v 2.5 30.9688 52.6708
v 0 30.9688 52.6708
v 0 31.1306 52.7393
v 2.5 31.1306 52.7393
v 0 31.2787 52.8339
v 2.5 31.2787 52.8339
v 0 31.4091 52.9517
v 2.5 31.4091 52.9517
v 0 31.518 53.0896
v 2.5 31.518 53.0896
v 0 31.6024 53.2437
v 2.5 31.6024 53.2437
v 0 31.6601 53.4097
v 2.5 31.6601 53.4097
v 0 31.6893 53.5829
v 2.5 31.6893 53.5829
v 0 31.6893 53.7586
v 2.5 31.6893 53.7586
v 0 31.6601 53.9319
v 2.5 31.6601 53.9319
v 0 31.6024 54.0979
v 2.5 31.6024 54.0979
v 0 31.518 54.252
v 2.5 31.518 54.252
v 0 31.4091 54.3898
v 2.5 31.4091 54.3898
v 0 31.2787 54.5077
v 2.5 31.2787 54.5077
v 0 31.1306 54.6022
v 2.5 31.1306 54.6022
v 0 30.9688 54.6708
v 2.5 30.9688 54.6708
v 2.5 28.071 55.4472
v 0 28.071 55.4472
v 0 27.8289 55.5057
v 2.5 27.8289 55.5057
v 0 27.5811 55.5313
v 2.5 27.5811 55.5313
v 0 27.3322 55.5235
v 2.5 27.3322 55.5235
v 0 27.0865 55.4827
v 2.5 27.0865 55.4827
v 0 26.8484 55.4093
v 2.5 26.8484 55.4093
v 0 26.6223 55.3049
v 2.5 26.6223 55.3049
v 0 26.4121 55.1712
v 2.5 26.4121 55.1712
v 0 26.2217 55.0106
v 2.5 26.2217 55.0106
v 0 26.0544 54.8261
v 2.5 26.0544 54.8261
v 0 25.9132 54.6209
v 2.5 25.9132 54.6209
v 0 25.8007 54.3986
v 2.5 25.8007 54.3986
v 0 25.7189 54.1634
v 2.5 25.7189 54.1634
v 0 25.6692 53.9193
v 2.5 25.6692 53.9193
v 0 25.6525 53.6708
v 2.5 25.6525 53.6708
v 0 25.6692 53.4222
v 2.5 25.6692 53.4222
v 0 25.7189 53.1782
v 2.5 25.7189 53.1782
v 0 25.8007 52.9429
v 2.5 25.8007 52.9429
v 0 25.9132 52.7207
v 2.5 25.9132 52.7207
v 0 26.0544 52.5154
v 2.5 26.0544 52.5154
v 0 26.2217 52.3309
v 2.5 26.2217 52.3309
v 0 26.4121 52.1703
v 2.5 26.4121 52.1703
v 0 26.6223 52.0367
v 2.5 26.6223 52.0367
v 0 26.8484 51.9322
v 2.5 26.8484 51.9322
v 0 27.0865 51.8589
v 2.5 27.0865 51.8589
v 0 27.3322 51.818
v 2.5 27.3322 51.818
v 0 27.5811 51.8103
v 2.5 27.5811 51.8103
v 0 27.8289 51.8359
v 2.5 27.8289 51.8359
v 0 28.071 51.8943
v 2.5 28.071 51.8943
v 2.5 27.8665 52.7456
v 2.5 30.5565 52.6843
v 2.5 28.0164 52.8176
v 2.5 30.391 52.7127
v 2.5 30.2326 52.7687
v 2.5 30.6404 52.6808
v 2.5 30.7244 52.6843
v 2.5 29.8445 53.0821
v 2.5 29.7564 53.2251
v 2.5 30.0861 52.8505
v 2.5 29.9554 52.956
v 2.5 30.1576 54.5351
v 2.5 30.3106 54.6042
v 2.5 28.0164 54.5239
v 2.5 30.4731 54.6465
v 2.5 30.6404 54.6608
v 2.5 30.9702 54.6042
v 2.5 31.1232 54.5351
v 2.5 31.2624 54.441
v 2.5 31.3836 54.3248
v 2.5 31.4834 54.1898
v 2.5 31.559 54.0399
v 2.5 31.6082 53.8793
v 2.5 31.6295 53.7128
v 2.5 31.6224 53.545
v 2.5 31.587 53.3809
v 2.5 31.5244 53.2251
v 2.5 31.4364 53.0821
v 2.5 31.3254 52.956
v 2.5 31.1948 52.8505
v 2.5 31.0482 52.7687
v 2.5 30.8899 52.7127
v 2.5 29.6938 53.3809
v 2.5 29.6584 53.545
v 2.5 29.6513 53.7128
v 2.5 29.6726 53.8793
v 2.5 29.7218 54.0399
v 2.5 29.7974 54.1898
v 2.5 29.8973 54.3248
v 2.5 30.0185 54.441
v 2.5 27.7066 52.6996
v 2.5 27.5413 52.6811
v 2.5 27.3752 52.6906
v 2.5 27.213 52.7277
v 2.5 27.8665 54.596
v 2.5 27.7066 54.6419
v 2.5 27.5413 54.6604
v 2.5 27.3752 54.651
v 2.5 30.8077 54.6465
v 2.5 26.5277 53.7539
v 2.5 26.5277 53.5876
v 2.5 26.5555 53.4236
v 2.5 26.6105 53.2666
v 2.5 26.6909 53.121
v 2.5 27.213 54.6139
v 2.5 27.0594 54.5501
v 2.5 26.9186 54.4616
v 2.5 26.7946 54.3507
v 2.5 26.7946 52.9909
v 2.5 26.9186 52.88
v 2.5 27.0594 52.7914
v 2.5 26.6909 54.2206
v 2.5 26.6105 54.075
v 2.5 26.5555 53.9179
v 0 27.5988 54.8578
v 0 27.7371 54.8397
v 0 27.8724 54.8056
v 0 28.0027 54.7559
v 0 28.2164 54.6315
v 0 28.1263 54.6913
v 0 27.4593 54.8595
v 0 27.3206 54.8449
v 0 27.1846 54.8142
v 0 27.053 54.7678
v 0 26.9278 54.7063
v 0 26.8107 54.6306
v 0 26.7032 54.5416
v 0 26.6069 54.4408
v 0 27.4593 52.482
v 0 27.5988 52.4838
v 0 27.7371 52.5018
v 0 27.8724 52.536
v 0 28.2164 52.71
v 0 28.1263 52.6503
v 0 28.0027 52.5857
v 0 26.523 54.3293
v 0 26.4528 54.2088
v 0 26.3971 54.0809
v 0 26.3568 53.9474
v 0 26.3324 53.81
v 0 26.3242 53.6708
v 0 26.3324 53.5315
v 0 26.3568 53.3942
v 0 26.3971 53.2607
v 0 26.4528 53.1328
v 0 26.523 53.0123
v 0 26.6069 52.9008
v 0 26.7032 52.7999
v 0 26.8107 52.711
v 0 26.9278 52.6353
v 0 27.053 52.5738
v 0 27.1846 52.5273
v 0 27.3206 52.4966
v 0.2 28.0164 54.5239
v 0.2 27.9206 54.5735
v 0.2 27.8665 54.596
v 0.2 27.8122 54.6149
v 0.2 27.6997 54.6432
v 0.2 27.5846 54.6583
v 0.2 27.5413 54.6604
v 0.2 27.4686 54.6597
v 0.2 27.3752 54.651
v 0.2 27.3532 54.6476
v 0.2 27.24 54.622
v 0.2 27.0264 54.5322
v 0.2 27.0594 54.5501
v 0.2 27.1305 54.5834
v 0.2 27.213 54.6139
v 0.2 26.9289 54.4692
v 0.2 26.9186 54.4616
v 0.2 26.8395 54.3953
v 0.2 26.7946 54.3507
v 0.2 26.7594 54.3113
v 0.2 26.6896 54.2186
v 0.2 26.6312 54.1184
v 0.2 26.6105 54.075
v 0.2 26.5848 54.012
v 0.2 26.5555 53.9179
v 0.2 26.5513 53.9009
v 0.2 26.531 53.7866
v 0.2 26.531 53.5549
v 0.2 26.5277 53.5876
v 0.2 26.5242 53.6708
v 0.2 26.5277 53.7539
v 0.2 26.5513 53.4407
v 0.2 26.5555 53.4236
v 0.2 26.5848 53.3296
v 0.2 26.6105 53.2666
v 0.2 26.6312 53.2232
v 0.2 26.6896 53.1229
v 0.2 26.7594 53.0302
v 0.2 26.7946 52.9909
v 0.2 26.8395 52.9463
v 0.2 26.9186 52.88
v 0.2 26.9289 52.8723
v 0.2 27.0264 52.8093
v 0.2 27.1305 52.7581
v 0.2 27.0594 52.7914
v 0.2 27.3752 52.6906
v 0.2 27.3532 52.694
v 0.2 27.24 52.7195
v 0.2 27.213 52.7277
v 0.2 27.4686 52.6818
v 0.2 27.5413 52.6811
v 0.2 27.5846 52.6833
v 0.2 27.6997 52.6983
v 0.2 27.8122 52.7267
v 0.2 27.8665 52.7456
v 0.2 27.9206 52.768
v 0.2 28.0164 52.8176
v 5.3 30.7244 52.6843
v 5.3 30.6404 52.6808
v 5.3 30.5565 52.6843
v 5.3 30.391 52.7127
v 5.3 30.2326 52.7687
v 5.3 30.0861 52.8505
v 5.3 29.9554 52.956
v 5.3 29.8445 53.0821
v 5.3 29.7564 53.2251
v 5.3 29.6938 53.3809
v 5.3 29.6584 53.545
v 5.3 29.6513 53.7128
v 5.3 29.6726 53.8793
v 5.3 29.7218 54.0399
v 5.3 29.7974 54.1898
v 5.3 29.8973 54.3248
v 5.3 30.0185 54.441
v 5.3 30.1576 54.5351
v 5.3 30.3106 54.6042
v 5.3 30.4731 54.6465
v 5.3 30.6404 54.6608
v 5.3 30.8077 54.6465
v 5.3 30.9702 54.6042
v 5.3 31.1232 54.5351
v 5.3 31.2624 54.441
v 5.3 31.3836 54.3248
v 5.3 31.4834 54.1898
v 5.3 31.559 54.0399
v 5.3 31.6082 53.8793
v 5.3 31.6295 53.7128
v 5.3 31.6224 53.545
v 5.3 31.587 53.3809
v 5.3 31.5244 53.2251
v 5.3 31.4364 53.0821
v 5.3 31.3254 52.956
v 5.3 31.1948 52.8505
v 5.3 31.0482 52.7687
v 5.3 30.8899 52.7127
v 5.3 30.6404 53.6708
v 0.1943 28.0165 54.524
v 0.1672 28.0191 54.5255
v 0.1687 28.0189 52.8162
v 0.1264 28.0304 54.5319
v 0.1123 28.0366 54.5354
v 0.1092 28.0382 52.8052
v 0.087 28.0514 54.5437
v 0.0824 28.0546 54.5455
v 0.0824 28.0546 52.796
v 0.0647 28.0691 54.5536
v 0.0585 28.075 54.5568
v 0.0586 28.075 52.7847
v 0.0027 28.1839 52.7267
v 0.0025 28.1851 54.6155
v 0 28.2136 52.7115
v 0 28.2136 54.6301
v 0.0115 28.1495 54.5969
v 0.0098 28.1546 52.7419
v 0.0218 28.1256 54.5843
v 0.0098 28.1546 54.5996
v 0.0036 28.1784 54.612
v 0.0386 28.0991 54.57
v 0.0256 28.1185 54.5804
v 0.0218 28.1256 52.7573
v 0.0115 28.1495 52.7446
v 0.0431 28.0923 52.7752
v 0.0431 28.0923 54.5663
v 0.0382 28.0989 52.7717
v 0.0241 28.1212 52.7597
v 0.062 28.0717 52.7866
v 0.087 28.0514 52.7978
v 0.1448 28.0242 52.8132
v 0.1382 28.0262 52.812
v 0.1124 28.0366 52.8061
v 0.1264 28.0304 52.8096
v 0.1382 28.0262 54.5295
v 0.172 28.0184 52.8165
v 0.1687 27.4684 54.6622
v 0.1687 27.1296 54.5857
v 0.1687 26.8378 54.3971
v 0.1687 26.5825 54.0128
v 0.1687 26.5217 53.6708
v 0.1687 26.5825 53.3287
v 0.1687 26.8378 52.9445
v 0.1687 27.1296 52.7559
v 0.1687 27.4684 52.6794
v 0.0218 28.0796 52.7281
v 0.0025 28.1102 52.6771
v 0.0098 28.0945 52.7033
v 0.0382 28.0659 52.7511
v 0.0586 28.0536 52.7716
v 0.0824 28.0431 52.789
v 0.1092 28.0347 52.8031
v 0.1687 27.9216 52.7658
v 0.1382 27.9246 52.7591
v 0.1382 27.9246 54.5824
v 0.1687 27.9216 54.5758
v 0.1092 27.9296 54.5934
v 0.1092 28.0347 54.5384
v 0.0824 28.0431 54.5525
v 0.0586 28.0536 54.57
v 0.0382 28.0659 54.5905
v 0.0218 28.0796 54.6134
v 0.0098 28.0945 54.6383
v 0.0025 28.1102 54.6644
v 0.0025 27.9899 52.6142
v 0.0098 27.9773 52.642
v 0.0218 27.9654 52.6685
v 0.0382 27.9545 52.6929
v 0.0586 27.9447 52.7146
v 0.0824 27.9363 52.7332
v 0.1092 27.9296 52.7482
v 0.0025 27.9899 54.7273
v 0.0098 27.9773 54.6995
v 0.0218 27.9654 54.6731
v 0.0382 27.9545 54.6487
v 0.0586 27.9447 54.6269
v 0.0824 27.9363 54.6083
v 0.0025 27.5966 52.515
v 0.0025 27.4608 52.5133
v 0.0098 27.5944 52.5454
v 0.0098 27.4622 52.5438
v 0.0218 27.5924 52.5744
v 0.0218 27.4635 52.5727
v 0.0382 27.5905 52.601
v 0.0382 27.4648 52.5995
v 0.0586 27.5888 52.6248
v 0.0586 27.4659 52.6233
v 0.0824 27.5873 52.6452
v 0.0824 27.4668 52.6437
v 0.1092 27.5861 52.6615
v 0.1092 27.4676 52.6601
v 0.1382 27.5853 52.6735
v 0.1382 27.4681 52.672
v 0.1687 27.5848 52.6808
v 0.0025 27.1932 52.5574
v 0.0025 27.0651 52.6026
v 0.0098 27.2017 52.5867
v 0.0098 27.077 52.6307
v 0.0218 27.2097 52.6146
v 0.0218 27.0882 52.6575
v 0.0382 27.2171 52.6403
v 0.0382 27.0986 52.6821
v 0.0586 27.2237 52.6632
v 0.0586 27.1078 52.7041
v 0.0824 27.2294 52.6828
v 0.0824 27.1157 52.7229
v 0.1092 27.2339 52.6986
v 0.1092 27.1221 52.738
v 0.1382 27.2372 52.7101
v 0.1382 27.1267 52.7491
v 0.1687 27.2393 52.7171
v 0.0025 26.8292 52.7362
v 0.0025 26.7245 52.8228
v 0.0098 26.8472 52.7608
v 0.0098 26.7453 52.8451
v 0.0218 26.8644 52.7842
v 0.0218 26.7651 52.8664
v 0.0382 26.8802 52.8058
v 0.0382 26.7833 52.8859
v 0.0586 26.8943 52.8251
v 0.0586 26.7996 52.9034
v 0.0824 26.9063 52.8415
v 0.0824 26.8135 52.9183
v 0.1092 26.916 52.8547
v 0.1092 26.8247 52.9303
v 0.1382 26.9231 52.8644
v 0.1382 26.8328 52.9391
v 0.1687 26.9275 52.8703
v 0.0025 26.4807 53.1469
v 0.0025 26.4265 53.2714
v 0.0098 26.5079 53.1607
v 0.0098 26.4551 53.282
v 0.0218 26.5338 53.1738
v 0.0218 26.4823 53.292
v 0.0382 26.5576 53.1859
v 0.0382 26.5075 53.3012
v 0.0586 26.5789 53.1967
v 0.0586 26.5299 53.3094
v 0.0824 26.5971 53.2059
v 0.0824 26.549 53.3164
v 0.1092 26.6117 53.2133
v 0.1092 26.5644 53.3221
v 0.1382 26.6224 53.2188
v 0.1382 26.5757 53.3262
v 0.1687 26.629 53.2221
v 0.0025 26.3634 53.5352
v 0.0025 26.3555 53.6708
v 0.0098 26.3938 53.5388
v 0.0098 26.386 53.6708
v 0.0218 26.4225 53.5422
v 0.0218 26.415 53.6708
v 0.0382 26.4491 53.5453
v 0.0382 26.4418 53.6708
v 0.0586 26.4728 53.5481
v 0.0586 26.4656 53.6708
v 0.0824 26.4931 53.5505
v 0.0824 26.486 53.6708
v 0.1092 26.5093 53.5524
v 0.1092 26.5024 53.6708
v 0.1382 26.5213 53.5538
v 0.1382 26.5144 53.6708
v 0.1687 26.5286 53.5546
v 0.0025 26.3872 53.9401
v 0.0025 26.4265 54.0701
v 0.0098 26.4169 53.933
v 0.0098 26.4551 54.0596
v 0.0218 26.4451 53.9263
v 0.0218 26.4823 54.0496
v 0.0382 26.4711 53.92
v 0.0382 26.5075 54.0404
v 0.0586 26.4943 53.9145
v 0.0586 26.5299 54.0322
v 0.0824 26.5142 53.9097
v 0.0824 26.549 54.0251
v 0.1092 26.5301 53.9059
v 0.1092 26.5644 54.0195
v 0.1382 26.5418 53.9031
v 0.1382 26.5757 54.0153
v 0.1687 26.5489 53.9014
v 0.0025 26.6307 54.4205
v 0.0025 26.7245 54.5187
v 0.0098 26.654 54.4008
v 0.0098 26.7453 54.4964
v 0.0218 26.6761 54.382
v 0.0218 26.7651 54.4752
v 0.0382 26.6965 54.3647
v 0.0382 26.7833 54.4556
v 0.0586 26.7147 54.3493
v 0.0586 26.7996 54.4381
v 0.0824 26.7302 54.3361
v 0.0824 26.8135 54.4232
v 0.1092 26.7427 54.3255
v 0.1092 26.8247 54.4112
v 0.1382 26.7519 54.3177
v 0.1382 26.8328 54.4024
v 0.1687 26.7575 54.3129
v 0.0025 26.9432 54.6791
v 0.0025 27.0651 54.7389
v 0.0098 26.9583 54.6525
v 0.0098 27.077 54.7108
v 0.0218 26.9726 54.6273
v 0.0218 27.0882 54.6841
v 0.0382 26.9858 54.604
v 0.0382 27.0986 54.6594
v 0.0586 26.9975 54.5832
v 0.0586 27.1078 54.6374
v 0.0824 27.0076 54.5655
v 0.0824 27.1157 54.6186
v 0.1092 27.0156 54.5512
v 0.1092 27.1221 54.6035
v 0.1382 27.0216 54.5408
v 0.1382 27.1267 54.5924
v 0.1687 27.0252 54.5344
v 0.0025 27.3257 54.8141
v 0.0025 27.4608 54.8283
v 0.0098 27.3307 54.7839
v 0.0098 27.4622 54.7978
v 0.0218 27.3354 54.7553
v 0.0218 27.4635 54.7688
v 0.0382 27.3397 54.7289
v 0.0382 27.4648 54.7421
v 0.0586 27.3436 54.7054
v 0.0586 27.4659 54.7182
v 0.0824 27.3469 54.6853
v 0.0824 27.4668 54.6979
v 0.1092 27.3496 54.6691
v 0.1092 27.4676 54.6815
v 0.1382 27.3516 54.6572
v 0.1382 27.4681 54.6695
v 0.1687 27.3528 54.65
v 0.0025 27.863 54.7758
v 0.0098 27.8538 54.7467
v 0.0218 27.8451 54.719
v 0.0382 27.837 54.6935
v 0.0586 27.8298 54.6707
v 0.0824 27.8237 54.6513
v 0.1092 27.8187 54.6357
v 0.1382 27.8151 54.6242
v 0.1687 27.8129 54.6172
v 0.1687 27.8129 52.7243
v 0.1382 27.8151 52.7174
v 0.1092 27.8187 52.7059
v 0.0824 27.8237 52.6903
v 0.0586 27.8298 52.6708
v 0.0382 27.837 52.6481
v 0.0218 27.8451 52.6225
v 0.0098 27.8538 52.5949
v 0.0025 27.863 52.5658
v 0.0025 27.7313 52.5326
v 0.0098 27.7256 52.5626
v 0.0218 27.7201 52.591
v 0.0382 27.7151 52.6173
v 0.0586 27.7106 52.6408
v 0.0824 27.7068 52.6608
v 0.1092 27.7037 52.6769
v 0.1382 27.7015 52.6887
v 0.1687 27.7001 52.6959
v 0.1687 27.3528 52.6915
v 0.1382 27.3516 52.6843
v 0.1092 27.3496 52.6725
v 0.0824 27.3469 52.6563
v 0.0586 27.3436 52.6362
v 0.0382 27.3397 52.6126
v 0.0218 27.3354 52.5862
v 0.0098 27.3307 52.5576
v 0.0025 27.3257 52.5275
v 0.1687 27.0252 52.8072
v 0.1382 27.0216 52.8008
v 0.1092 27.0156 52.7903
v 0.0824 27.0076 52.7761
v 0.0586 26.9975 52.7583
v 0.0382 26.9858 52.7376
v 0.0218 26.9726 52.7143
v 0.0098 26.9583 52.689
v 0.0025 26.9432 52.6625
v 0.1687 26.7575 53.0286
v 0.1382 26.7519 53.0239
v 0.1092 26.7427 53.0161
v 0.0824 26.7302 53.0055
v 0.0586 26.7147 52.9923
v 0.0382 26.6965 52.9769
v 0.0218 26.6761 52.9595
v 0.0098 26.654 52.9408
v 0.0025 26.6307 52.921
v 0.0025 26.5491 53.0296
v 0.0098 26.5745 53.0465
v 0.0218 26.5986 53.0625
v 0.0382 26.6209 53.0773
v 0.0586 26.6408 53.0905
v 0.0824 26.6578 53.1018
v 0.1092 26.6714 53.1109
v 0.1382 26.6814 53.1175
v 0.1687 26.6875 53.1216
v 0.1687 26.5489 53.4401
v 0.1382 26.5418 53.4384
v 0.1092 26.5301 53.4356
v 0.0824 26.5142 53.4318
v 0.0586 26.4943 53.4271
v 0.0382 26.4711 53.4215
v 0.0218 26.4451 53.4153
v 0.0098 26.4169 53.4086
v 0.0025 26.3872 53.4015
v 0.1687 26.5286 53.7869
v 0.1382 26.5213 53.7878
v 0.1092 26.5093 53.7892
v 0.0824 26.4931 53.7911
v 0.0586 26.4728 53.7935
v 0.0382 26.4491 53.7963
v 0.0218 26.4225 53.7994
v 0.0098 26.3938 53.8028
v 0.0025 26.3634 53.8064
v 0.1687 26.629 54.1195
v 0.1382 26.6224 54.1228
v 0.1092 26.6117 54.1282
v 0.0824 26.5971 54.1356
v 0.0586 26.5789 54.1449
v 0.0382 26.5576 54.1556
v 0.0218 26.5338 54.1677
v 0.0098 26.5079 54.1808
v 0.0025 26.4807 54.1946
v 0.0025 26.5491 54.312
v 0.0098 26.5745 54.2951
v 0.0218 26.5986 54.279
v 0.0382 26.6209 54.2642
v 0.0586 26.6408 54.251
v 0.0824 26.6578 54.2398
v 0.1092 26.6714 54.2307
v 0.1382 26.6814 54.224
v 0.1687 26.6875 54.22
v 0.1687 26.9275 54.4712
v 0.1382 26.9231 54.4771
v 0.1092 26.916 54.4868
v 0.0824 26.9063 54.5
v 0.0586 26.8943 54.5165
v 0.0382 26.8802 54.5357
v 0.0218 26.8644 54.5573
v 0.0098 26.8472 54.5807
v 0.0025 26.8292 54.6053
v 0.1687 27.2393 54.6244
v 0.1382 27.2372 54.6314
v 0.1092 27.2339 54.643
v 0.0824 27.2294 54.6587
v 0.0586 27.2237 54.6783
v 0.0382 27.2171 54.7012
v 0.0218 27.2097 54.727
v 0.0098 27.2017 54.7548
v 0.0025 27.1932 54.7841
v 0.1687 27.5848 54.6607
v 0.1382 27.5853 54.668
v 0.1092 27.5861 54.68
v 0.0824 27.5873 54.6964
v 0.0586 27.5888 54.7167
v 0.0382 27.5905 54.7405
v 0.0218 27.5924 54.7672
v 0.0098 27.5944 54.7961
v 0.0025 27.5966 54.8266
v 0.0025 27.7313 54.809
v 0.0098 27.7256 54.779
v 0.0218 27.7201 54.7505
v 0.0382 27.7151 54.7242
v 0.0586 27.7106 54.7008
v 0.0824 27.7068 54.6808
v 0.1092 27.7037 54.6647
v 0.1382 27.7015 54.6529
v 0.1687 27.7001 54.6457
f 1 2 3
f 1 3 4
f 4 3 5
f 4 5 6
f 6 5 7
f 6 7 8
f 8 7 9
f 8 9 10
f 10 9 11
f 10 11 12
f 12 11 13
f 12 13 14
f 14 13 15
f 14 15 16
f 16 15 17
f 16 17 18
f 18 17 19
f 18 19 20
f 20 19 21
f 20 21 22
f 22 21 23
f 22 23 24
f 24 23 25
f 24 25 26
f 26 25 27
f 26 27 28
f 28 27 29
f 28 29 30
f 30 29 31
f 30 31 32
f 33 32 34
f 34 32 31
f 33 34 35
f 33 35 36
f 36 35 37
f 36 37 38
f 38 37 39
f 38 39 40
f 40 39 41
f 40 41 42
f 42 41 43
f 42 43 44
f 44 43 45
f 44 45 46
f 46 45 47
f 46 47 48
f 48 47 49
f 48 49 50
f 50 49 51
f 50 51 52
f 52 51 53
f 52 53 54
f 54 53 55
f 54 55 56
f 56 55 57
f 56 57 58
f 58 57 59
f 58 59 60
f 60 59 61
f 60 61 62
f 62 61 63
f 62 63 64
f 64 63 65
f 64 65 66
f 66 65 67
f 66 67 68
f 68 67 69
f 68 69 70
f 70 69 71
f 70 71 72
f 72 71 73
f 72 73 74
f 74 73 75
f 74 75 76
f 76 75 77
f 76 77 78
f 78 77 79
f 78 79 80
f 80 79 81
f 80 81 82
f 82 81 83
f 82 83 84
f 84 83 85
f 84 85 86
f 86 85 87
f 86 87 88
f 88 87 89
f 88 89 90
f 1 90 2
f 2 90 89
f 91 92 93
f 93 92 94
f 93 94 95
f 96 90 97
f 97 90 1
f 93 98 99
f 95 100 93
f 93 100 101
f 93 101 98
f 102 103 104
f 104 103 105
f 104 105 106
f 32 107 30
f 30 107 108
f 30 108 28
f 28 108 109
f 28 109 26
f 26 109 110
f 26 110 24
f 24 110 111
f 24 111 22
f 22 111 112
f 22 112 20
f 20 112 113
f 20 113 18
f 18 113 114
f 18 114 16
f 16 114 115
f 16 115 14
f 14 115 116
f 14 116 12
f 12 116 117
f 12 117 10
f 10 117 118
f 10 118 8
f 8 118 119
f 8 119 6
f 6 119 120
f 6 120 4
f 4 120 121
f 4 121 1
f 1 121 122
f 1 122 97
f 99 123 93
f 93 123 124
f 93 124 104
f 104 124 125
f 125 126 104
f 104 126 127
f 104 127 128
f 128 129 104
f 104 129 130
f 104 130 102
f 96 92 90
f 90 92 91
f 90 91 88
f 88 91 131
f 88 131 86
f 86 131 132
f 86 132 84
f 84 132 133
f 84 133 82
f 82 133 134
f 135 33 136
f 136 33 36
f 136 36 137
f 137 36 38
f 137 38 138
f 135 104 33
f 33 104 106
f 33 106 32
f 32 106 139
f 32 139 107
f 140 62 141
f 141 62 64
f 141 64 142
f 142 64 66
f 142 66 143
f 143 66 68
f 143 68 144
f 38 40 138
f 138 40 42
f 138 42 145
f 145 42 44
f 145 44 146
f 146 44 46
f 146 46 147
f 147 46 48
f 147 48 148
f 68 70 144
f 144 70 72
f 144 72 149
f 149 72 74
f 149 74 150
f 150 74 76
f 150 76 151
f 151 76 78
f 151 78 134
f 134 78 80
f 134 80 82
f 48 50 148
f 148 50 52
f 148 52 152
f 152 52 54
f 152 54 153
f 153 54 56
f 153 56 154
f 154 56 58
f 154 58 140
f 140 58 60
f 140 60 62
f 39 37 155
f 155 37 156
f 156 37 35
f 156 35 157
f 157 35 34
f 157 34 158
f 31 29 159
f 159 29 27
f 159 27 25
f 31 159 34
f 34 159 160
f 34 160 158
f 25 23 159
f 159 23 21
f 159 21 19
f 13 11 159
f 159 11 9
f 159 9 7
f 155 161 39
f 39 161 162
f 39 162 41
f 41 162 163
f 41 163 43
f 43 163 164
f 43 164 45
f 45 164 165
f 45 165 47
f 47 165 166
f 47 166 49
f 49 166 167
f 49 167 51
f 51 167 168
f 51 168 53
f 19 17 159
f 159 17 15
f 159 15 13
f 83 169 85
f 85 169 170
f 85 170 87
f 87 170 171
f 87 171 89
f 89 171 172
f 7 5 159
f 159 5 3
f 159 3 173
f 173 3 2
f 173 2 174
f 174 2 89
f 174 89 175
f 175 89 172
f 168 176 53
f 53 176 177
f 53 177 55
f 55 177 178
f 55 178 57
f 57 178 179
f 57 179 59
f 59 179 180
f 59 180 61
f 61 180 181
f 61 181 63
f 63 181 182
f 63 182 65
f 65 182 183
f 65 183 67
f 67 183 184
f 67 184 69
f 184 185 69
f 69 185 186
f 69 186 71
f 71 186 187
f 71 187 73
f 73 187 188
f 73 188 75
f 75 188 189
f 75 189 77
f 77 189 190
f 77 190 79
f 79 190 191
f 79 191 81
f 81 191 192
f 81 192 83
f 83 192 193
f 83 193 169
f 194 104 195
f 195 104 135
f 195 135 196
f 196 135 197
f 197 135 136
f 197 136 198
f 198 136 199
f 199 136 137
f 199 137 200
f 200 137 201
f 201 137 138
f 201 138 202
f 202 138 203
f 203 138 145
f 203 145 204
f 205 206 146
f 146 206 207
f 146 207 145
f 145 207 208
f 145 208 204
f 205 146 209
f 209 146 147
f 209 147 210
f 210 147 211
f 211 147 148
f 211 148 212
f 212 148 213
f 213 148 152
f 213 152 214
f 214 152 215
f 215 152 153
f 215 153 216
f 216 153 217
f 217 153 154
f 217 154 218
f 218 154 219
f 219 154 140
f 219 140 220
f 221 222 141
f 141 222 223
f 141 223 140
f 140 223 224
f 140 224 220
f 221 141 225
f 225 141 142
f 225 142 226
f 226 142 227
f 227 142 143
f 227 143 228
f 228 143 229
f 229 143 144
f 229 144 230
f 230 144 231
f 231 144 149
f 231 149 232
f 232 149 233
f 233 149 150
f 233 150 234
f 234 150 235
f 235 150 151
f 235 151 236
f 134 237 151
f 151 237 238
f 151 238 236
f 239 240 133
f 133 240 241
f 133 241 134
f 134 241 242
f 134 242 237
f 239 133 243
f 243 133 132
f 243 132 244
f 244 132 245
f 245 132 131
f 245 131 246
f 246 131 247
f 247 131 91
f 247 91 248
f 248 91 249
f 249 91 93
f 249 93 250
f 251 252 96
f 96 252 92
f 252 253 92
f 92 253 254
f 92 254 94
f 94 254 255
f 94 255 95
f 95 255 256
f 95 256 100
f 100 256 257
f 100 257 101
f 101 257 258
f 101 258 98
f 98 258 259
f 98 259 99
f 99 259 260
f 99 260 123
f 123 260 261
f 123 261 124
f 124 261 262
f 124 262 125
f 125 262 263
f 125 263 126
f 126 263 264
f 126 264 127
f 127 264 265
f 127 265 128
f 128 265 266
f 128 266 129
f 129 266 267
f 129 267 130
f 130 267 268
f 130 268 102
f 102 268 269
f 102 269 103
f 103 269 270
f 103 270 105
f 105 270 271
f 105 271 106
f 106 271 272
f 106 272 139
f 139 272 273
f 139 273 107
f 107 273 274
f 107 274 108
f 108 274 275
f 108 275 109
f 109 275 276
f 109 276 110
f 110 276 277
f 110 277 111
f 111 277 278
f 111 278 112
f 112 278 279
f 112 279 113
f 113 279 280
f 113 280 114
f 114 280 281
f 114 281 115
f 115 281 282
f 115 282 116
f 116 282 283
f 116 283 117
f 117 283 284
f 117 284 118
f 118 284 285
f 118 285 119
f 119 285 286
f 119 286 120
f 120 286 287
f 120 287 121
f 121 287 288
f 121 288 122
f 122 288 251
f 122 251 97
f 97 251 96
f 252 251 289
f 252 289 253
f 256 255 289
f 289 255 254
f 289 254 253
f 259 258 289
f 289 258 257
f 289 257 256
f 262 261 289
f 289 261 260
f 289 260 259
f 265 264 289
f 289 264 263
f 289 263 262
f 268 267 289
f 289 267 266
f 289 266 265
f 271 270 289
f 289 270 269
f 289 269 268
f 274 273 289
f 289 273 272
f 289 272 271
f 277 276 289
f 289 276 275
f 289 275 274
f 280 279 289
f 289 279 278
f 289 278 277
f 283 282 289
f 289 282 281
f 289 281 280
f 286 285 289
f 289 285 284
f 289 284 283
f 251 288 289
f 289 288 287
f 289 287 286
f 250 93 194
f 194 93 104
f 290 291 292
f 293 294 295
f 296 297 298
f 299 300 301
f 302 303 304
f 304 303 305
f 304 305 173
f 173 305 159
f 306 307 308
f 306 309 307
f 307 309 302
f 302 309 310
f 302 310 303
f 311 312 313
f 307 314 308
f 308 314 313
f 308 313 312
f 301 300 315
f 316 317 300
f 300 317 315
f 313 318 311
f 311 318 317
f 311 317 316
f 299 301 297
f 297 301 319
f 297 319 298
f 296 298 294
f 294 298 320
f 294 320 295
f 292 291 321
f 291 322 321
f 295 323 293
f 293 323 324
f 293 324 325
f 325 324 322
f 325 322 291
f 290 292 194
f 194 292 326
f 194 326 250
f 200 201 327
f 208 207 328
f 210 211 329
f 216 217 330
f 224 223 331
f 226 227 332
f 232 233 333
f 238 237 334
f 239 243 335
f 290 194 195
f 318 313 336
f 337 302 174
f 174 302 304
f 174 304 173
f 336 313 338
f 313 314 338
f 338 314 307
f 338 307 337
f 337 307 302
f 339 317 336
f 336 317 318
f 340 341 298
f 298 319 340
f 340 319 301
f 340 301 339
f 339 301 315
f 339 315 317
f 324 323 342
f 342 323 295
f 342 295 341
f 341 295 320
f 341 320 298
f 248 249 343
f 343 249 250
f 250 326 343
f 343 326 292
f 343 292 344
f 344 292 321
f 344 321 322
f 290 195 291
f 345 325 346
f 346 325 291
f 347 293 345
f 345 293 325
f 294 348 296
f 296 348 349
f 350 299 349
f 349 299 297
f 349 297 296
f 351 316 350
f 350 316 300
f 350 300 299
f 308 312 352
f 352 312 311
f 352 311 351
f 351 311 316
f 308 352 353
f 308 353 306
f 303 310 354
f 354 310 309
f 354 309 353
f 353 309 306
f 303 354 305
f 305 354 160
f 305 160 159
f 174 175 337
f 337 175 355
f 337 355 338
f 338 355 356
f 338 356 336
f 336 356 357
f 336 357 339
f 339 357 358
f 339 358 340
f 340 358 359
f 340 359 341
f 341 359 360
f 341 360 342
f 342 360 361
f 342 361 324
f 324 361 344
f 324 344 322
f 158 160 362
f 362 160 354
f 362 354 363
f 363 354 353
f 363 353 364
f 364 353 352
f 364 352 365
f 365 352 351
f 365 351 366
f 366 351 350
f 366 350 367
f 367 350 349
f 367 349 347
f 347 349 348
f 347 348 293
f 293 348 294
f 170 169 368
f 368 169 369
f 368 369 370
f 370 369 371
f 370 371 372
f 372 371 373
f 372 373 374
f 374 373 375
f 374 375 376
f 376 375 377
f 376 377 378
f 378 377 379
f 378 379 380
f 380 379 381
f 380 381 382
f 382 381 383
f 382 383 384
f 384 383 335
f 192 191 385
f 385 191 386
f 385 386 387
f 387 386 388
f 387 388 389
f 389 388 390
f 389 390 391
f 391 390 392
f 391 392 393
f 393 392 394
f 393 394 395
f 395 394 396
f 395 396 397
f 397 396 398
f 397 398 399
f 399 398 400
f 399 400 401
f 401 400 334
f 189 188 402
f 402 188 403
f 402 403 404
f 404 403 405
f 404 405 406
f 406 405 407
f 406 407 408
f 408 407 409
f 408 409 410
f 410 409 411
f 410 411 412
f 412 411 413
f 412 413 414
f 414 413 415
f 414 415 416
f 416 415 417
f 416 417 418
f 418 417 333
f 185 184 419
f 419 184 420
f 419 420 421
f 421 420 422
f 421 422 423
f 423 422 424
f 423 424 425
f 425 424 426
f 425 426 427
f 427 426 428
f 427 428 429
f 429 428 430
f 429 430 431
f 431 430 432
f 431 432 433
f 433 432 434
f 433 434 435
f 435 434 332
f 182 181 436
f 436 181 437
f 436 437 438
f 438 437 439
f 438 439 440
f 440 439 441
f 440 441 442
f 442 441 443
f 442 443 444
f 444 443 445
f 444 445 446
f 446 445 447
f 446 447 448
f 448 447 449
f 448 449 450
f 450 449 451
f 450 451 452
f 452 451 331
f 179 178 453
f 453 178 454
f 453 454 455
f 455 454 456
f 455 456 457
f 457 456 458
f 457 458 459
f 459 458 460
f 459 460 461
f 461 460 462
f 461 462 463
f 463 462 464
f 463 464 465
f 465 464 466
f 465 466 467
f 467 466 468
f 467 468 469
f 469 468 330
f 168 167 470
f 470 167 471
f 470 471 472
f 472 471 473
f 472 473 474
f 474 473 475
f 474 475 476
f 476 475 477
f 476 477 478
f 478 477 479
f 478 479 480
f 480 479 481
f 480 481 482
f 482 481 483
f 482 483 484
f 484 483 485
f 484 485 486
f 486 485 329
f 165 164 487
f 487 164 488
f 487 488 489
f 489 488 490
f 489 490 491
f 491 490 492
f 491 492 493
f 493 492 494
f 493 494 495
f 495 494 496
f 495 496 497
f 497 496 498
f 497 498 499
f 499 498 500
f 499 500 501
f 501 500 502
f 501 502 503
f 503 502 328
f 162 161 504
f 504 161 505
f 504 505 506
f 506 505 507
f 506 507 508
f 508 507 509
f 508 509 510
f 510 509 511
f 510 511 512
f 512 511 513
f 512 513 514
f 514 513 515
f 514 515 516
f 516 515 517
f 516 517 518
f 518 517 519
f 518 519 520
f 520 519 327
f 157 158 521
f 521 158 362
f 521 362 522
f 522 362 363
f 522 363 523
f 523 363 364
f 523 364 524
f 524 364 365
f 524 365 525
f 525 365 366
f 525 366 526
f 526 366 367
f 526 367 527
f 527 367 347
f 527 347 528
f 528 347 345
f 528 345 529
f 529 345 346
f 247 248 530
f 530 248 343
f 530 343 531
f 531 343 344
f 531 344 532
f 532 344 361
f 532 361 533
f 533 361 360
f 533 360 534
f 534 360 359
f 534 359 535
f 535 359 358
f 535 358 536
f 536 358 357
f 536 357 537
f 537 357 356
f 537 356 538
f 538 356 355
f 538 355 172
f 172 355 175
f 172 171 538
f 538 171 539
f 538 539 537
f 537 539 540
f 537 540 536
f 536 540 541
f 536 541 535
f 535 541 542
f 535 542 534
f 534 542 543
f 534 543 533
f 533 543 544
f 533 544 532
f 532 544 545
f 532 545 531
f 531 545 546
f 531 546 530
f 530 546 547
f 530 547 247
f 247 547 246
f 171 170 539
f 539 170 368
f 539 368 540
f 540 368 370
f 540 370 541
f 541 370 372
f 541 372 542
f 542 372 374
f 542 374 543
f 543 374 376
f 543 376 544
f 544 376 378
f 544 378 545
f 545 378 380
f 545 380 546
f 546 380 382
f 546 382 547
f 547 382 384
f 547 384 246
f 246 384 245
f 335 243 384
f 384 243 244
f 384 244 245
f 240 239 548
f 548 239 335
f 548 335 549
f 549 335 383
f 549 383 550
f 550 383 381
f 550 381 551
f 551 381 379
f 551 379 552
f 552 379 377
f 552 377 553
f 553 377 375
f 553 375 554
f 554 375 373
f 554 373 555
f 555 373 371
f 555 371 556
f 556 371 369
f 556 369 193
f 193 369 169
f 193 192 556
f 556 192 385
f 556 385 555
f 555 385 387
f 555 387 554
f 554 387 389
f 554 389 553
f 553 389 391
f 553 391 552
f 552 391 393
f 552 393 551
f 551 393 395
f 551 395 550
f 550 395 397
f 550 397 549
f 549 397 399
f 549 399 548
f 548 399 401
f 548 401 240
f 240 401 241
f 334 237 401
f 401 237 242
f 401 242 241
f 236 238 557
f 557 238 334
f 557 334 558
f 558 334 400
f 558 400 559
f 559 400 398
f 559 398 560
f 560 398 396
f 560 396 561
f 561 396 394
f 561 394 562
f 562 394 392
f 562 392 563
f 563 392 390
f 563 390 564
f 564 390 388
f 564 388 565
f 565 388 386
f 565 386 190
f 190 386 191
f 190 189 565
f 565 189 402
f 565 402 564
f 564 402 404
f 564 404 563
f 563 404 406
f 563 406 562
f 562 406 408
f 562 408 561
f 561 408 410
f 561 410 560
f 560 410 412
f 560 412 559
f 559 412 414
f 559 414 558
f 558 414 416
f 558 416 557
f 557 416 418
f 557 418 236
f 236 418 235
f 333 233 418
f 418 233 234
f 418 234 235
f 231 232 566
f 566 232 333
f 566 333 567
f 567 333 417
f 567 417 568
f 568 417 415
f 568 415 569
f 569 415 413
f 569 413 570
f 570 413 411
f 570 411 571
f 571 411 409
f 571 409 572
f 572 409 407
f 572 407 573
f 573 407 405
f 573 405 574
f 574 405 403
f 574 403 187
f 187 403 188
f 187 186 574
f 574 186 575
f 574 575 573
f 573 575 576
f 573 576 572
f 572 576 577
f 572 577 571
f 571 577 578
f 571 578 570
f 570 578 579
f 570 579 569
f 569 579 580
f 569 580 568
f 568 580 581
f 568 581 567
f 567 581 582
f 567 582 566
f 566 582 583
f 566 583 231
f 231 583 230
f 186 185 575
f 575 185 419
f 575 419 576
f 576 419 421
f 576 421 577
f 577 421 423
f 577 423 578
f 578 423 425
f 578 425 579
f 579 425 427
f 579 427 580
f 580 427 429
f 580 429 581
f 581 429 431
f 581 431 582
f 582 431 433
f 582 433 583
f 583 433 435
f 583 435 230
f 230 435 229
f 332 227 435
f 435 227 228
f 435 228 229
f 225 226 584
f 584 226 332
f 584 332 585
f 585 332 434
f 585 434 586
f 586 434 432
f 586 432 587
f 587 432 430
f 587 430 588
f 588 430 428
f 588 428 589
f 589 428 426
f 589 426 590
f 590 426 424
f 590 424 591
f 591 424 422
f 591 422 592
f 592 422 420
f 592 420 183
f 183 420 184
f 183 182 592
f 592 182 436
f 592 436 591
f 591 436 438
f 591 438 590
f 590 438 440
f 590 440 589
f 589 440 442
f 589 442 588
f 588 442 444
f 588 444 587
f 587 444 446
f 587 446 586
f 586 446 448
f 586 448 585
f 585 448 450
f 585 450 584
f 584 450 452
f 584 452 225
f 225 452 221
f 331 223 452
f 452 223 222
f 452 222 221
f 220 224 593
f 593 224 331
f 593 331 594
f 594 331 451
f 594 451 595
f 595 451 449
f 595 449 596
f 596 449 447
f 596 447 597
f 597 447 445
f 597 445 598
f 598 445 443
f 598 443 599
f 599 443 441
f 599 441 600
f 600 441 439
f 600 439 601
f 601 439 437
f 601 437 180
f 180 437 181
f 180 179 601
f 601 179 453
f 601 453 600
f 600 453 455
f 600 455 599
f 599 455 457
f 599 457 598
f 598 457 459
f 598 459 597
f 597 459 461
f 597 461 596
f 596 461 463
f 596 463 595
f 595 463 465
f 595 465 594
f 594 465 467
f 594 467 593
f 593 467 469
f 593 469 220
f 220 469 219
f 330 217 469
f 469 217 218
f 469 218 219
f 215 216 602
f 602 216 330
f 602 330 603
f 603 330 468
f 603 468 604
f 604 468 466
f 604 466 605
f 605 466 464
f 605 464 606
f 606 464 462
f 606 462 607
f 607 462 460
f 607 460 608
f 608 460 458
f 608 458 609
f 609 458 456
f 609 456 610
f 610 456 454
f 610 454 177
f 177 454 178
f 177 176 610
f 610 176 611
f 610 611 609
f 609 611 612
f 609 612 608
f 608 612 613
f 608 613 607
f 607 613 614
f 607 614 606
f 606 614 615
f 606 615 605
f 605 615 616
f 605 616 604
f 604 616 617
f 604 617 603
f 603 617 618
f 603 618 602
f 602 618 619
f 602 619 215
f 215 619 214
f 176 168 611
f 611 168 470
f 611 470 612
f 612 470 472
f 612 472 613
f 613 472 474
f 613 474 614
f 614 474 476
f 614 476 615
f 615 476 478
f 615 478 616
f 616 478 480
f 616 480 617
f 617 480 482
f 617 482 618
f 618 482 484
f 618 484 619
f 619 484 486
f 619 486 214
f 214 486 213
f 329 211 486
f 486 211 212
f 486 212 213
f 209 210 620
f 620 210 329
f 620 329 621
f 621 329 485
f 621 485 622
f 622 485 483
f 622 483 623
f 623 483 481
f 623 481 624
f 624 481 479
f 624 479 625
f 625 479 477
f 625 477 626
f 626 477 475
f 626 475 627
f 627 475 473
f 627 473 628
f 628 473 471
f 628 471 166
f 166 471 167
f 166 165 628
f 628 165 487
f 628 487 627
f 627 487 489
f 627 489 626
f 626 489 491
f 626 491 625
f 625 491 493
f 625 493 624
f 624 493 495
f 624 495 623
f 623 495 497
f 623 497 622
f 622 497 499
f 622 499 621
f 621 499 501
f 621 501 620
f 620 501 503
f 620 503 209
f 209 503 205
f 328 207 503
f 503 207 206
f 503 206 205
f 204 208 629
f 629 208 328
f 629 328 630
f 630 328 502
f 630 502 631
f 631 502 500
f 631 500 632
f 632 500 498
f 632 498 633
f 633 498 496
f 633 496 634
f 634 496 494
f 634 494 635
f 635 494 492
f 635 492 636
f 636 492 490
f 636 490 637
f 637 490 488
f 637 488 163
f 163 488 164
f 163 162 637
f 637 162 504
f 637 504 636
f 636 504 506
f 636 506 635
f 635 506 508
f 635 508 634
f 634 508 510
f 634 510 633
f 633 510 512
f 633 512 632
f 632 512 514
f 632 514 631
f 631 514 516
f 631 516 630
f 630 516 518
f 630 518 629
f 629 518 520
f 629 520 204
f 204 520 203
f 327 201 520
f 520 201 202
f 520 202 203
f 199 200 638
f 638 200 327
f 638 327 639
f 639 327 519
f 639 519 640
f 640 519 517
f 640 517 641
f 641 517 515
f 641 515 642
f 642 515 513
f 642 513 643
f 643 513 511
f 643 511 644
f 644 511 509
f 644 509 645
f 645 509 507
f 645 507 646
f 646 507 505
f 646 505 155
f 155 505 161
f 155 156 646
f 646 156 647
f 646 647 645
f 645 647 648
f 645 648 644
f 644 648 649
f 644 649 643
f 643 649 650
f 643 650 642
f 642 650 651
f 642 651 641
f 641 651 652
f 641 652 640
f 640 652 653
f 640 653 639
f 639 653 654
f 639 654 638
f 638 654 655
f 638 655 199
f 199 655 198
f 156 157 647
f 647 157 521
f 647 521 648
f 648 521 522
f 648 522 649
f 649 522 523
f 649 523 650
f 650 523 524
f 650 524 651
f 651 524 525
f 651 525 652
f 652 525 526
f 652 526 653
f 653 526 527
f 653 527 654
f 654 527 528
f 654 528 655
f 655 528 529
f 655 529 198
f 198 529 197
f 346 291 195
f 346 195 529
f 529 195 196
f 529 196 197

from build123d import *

# Parameters (mm, degrees)
BOSS_EXTRUDE2_DEPTH = 2.5
SKETCH4_R           = 0.99
CUT_EXTRUDE2_DEPTH  = 64.988660757
SKETCH6_R           = 0.99
BOSS_EXTRUDE4_DEPTH = 2.8
SKETCH7_W           = 2.01987101
SKETCH7_H           = 0.78494751
BOSS_EXTRUDE5_DEPTH = 2.5
FILLET1_R           = 0.2


with BuildPart() as part:
    # Sketch3 → Boss-Extrude2 (new body)
    with BuildSketch(Plane(origin=(0, 0, 0), x_dir=(0, 0, -1), z_dir=(1, 0, 0))):
        with BuildLine():
            Line((-54.67077374, 30.968825597), (-55.447230875, 28.071048118))
            ThreePointArc((-55.447230875, 28.071048118), (-53.67077374, 25.652507451), (-51.894316605, 28.071048118))
            Line((-51.894316605, 28.071048118), (-52.67077374, 30.968825597))
            ThreePointArc((-52.67077374, 30.968825597), (-53.67077374, 31.692969852), (-54.67077374, 30.968825597))
        make_face()
    extrude(amount=BOSS_EXTRUDE2_DEPTH)

    # Sketch4 → Cut-Extrude2 (cut, through all)
    with BuildSketch(Plane(origin=(2.5, 0, 0), x_dir=(0, 0, -1), z_dir=(1, 0, 0))):
        with Locations((-53.67077374, 27.514195996)):
            Circle(SKETCH4_R)
    extrude(amount=-CUT_EXTRUDE2_DEPTH, mode=Mode.SUBTRACT)

    # Sketch6 → Boss-Extrude4 (add)
    with BuildSketch(Plane(origin=(2.5, 0, 0), x_dir=(0, 0, -1), z_dir=(1, 0, 0))):
        with Locations((-53.67077374, 30.640427563)):
            Circle(SKETCH6_R)
    extrude(amount=BOSS_EXTRUDE4_DEPTH)

    # Sketch7 → Boss-Extrude5 (add)
    with BuildSketch(Plane(origin=(2.5, 0, 0), x_dir=(0, 0, -1), z_dir=(1, 0, 0))):
        with Locations((-53.657499813, 28.408869671)):
            Rectangle(SKETCH7_W, SKETCH7_H)
    extrude(amount=-BOSS_EXTRUDE5_DEPTH)

    # Fillet1
    fillet1_edges = [part.edges().sort_by_distance(p)[0] for p in [
        (0, 26.524195996, 53.67077374),
        (0, 28.016395916, 53.67077374),
    ]]
    fillet(fillet1_edges, radius=FILLET1_R)


solid = part.part
